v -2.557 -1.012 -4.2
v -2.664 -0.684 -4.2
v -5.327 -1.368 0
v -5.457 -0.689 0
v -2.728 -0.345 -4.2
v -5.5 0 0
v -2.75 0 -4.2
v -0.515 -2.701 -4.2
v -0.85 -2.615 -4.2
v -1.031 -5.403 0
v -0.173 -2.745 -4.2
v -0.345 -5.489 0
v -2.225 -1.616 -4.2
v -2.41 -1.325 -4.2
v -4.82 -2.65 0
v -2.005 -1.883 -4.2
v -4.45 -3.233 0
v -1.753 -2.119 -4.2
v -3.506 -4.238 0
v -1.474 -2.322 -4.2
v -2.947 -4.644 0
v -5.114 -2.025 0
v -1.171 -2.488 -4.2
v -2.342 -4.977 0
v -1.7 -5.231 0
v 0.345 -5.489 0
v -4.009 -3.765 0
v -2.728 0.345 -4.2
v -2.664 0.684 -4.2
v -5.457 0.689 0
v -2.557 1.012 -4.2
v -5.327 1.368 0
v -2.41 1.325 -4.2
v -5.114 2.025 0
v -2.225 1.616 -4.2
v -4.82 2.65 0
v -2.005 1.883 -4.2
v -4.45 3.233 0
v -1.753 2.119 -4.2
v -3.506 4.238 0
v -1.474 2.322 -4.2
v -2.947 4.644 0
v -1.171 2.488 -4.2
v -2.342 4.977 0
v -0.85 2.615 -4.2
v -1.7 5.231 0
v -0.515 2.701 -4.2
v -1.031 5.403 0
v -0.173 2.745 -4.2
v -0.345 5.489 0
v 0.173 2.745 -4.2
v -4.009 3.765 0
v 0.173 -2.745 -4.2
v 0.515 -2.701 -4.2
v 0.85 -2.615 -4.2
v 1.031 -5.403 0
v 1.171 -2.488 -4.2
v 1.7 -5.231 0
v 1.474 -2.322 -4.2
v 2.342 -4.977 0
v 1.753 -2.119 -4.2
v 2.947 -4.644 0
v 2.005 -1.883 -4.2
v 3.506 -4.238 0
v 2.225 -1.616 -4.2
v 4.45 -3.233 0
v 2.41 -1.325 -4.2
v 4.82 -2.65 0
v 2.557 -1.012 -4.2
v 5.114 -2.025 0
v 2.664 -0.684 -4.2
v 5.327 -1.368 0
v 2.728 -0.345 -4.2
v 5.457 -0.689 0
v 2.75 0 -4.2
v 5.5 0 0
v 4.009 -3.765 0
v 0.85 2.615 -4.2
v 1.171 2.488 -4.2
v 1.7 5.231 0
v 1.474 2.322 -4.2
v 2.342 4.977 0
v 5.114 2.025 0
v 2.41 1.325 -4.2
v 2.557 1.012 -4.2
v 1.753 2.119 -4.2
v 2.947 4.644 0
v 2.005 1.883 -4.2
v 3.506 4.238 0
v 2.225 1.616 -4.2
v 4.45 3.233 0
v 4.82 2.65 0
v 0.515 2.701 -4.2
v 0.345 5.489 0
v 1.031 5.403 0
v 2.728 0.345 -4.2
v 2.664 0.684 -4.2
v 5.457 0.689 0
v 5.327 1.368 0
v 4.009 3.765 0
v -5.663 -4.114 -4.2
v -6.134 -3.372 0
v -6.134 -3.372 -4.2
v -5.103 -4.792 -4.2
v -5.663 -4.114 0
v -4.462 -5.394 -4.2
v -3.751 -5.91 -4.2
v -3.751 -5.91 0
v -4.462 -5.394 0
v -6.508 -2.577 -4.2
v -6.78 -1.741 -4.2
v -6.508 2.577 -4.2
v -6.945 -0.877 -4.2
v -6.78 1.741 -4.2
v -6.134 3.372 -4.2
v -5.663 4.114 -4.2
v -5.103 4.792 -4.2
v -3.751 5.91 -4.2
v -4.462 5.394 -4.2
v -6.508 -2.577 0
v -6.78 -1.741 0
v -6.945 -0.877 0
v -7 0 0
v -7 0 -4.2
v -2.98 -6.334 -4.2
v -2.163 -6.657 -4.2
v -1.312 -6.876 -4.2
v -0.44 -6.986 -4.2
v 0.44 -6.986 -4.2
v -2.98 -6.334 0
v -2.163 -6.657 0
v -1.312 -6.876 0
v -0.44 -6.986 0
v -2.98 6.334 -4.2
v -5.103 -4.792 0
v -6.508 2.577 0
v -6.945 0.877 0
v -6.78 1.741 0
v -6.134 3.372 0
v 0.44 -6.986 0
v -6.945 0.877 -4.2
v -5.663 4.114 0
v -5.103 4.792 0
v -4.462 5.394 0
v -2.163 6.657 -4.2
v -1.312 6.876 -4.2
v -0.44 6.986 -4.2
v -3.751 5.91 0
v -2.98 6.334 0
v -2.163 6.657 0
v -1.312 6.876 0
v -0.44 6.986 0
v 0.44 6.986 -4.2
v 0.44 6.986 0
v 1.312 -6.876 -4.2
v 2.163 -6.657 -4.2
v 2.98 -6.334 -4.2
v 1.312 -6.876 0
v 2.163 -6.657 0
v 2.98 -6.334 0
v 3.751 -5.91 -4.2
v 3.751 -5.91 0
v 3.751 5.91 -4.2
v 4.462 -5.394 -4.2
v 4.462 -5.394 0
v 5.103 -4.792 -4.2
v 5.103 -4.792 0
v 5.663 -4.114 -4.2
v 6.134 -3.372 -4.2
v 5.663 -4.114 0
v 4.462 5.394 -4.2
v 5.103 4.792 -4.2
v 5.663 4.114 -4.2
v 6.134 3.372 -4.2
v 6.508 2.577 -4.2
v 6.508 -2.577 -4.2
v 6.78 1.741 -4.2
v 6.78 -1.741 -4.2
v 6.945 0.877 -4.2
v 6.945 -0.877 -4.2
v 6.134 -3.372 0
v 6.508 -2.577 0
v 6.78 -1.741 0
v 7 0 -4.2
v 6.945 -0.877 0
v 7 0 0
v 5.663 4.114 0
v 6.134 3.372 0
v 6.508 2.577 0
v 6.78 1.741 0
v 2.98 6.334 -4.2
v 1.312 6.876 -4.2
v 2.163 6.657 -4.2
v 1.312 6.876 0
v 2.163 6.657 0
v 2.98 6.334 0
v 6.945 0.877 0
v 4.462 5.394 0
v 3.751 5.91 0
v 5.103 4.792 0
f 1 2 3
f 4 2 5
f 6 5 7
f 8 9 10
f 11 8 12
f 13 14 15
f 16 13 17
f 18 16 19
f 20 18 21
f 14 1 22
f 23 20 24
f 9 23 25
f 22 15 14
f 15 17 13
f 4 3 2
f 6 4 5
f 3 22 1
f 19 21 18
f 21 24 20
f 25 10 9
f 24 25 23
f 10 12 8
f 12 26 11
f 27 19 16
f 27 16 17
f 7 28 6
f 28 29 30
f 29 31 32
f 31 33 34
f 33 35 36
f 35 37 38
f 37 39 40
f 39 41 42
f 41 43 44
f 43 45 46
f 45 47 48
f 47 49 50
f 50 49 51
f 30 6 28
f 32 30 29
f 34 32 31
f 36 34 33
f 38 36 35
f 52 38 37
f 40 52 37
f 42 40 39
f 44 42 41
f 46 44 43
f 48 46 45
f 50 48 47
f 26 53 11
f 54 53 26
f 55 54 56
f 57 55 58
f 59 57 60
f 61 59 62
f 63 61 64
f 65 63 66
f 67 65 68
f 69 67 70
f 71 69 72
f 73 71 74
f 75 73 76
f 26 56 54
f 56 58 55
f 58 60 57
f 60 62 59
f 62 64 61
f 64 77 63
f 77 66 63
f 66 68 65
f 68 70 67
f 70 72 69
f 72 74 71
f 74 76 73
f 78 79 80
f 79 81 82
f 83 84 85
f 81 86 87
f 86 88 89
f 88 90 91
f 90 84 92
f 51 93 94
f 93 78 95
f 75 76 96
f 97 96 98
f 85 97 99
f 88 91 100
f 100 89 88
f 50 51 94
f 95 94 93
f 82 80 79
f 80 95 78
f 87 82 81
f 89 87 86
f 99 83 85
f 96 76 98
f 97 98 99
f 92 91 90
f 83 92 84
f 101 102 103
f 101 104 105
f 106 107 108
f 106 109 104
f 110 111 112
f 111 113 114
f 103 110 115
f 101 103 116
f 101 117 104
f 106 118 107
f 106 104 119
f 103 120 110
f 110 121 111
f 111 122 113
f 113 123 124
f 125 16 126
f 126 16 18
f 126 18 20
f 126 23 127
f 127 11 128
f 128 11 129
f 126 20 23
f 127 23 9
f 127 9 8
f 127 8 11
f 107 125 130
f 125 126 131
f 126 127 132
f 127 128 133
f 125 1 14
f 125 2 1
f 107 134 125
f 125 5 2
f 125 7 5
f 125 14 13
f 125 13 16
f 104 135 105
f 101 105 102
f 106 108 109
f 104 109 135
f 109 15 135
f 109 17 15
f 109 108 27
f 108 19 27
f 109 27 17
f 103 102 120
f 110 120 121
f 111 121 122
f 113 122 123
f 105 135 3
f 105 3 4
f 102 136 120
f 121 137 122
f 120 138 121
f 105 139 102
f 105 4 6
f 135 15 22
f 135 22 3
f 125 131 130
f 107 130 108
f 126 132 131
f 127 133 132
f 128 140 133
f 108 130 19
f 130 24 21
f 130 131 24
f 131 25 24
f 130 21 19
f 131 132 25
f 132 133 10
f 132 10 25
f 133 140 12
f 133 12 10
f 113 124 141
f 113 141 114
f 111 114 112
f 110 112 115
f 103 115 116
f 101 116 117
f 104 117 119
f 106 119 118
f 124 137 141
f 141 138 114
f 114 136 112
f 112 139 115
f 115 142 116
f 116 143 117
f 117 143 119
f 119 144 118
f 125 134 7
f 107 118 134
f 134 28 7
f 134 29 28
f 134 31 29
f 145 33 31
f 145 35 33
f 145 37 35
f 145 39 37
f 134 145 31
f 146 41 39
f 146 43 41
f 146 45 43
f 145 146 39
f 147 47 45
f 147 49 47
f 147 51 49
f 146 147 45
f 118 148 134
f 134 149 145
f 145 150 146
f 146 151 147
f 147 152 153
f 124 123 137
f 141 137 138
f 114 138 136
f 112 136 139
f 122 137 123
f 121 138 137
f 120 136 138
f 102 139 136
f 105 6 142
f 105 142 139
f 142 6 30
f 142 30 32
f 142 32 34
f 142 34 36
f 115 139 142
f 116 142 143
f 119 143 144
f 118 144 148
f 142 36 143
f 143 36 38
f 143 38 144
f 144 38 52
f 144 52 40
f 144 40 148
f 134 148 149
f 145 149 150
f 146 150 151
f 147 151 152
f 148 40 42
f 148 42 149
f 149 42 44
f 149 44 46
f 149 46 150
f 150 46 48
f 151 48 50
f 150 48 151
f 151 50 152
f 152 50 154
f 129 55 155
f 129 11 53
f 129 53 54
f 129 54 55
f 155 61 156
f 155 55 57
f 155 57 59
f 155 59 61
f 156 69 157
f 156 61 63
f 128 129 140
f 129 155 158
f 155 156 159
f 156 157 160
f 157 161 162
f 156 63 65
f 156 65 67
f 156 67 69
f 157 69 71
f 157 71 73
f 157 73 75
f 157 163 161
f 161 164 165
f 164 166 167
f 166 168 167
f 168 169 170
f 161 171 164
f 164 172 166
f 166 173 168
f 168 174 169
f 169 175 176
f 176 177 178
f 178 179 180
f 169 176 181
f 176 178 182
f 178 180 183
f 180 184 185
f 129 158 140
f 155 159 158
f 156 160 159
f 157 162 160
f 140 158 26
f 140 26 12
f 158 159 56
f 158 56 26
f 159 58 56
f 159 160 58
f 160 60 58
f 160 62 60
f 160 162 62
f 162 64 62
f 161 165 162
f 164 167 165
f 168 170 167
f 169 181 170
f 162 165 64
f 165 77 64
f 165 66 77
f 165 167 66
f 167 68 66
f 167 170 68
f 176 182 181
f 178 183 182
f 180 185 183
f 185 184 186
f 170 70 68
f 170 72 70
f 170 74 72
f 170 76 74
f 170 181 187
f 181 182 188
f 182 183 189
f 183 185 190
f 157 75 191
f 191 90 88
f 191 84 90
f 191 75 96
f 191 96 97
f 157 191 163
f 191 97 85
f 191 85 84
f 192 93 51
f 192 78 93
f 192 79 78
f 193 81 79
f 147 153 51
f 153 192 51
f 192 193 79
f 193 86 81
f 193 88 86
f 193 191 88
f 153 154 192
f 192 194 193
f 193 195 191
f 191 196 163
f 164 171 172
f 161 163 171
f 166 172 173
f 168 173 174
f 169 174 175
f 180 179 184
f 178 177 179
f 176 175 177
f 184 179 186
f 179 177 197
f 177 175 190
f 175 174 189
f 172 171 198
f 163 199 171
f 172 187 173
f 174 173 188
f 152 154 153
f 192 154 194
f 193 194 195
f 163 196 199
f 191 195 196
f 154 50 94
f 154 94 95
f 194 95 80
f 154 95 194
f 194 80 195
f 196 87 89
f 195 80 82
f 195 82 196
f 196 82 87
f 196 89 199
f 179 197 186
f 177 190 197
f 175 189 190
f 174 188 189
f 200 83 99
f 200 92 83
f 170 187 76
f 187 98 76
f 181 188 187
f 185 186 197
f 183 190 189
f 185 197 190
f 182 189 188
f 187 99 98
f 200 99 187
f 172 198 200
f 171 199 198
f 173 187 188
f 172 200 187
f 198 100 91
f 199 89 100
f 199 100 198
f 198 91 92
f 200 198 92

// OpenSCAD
$fn = 50;

difference() {
	union() {
		translate(v = [0, 0, -4.2]) {
			cylinder(h = 4.2, r = 7.0);
		}
	}
	union() {
		translate(v = [0, 0, 0]) {
			rotate(a = [0, 0, 0]) {
				difference() {
					union() {
						translate(v = [0, 0, -7.2]) {
							cylinder(h = 7.2, r = 2.25);
						}
						translate(v = [0, 0, -4.2]) {
							cylinder(h = 4.2, r1 = 2.75, r2 = 5.5);
						}
						translate(v = [0, 0, -7.2]) {
							cylinder(h = 7.2, r = 2.75);
						}
						translate(v = [0, 0, -7.2]) {
							cylinder(h = 7.2, r = 2.25);
						}
					}
					union();
				}
			}
		}
	}
}
